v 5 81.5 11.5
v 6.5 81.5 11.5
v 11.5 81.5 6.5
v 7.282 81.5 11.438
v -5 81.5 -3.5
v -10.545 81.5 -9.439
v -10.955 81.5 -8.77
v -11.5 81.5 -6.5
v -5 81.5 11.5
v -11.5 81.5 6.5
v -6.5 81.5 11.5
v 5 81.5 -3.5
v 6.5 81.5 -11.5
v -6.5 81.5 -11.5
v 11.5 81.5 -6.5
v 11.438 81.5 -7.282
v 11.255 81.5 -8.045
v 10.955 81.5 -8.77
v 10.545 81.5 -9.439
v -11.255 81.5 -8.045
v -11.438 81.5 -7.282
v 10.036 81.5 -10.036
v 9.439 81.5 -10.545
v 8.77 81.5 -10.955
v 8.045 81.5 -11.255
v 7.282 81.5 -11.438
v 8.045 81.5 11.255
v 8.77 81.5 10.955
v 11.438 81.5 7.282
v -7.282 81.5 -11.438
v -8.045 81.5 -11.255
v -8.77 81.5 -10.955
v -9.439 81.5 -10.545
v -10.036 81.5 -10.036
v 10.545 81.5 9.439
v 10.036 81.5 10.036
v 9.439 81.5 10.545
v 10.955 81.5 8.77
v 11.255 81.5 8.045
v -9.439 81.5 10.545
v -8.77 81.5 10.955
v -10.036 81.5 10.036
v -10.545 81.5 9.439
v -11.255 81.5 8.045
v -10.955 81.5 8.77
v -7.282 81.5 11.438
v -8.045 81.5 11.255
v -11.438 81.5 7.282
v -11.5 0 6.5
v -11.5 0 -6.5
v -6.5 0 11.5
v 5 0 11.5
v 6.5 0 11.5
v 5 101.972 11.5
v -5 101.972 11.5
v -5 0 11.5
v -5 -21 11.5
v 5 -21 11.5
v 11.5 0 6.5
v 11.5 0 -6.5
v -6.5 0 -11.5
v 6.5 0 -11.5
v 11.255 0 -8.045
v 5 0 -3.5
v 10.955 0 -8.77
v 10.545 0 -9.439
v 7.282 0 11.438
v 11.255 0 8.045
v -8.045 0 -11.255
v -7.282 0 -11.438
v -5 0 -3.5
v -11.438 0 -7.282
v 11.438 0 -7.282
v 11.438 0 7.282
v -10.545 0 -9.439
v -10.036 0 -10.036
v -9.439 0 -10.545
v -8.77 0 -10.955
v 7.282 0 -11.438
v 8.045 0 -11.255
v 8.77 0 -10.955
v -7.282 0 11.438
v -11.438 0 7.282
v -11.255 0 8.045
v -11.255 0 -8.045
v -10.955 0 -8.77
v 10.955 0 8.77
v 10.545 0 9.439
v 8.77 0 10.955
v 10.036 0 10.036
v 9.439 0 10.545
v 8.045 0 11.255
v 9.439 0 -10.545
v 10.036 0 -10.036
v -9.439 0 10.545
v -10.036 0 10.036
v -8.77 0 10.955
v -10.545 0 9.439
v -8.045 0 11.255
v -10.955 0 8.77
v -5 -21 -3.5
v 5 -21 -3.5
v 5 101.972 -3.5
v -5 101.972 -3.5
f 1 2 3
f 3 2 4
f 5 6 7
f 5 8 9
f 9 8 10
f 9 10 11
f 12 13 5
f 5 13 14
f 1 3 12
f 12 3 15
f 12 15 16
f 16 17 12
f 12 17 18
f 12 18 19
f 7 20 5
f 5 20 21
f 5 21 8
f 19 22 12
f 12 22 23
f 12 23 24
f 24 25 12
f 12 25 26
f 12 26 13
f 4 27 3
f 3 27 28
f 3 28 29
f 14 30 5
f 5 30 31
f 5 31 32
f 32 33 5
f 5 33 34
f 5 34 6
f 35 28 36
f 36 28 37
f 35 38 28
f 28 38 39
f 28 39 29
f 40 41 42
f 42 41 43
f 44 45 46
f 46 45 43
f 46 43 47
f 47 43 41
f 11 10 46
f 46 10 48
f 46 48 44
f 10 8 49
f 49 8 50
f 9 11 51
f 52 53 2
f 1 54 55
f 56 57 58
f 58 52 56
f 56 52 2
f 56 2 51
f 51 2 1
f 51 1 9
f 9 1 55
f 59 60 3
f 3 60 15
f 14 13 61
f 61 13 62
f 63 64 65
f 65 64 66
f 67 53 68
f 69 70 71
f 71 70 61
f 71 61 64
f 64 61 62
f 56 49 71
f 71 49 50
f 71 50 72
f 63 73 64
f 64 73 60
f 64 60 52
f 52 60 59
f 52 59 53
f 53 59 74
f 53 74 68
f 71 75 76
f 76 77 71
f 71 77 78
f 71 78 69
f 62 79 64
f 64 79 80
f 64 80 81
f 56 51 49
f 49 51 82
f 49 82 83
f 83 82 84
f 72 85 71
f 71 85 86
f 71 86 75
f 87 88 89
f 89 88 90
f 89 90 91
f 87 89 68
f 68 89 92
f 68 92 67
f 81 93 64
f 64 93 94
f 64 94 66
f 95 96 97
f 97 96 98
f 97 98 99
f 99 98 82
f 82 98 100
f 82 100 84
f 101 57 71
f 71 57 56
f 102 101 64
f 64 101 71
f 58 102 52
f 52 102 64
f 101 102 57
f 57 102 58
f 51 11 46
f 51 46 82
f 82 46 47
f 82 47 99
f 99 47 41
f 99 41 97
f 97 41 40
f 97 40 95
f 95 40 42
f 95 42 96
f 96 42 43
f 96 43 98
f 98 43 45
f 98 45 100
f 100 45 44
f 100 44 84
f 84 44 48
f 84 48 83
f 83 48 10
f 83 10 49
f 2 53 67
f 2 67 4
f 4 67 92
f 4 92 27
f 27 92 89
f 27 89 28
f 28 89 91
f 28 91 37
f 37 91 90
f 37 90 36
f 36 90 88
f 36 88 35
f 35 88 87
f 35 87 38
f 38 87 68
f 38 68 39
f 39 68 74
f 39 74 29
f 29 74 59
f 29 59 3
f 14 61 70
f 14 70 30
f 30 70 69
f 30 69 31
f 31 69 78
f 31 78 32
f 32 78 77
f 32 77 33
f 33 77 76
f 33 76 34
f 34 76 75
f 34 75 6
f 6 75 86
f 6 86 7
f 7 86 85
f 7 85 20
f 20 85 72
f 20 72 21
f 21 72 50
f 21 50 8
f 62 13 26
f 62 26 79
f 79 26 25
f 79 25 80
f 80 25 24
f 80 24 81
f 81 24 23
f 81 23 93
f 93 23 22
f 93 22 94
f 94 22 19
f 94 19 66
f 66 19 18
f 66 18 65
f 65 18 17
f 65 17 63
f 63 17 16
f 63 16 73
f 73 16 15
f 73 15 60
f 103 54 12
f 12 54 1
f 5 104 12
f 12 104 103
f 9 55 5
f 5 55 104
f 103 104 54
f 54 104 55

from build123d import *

# Parameters (mm, degrees)
SKETCH2_W           = 23
SKETCH2_H           = 23
BOSS_EXTRUDE1_DEPTH = 81.5
SKETCH2_3_W         = 10
SKETCH2_3_H         = 15
BOSS_EXTRUDE2_DEPTH = 21
FILLET1_R           = 5


with BuildPart() as part:
    # Sketch2 → Boss-Extrude1 (new body)
    with BuildSketch(Plane(origin=(0, 0, 0), x_dir=(1, 0, 0), z_dir=(0, 1, 0))):
        Rectangle(SKETCH2_W, SKETCH2_H)
    extrude(amount=BOSS_EXTRUDE1_DEPTH)

    # Sketch2<3> → Boss-Extrude2 (add)
    with BuildSketch(Plane(origin=(0, 0, 0), x_dir=(1, 0, 0), z_dir=(0, 1, 0))):
        with Locations((0, -4)):
            Rectangle(SKETCH2_3_W, SKETCH2_3_H)
    boss_extrude2 = extrude(amount=-BOSS_EXTRUDE2_DEPTH)

    # Fillet1
    fillet1_edges = [part.edges().sort_by_distance(p)[0] for p in [
        (-11.5, 40.75, 11.5),
        (11.5, 40.75, 11.5),
        (-11.5, 40.75, -11.5),
        (11.5, 40.75, -11.5),
    ]]
    fillet(fillet1_edges, radius=FILLET1_R)

    # Mirror1: Boss-Extrude2 across plane
    add(boss_extrude2.mirror(Plane.ZX.offset(40.486123935)))


solid = part.part
